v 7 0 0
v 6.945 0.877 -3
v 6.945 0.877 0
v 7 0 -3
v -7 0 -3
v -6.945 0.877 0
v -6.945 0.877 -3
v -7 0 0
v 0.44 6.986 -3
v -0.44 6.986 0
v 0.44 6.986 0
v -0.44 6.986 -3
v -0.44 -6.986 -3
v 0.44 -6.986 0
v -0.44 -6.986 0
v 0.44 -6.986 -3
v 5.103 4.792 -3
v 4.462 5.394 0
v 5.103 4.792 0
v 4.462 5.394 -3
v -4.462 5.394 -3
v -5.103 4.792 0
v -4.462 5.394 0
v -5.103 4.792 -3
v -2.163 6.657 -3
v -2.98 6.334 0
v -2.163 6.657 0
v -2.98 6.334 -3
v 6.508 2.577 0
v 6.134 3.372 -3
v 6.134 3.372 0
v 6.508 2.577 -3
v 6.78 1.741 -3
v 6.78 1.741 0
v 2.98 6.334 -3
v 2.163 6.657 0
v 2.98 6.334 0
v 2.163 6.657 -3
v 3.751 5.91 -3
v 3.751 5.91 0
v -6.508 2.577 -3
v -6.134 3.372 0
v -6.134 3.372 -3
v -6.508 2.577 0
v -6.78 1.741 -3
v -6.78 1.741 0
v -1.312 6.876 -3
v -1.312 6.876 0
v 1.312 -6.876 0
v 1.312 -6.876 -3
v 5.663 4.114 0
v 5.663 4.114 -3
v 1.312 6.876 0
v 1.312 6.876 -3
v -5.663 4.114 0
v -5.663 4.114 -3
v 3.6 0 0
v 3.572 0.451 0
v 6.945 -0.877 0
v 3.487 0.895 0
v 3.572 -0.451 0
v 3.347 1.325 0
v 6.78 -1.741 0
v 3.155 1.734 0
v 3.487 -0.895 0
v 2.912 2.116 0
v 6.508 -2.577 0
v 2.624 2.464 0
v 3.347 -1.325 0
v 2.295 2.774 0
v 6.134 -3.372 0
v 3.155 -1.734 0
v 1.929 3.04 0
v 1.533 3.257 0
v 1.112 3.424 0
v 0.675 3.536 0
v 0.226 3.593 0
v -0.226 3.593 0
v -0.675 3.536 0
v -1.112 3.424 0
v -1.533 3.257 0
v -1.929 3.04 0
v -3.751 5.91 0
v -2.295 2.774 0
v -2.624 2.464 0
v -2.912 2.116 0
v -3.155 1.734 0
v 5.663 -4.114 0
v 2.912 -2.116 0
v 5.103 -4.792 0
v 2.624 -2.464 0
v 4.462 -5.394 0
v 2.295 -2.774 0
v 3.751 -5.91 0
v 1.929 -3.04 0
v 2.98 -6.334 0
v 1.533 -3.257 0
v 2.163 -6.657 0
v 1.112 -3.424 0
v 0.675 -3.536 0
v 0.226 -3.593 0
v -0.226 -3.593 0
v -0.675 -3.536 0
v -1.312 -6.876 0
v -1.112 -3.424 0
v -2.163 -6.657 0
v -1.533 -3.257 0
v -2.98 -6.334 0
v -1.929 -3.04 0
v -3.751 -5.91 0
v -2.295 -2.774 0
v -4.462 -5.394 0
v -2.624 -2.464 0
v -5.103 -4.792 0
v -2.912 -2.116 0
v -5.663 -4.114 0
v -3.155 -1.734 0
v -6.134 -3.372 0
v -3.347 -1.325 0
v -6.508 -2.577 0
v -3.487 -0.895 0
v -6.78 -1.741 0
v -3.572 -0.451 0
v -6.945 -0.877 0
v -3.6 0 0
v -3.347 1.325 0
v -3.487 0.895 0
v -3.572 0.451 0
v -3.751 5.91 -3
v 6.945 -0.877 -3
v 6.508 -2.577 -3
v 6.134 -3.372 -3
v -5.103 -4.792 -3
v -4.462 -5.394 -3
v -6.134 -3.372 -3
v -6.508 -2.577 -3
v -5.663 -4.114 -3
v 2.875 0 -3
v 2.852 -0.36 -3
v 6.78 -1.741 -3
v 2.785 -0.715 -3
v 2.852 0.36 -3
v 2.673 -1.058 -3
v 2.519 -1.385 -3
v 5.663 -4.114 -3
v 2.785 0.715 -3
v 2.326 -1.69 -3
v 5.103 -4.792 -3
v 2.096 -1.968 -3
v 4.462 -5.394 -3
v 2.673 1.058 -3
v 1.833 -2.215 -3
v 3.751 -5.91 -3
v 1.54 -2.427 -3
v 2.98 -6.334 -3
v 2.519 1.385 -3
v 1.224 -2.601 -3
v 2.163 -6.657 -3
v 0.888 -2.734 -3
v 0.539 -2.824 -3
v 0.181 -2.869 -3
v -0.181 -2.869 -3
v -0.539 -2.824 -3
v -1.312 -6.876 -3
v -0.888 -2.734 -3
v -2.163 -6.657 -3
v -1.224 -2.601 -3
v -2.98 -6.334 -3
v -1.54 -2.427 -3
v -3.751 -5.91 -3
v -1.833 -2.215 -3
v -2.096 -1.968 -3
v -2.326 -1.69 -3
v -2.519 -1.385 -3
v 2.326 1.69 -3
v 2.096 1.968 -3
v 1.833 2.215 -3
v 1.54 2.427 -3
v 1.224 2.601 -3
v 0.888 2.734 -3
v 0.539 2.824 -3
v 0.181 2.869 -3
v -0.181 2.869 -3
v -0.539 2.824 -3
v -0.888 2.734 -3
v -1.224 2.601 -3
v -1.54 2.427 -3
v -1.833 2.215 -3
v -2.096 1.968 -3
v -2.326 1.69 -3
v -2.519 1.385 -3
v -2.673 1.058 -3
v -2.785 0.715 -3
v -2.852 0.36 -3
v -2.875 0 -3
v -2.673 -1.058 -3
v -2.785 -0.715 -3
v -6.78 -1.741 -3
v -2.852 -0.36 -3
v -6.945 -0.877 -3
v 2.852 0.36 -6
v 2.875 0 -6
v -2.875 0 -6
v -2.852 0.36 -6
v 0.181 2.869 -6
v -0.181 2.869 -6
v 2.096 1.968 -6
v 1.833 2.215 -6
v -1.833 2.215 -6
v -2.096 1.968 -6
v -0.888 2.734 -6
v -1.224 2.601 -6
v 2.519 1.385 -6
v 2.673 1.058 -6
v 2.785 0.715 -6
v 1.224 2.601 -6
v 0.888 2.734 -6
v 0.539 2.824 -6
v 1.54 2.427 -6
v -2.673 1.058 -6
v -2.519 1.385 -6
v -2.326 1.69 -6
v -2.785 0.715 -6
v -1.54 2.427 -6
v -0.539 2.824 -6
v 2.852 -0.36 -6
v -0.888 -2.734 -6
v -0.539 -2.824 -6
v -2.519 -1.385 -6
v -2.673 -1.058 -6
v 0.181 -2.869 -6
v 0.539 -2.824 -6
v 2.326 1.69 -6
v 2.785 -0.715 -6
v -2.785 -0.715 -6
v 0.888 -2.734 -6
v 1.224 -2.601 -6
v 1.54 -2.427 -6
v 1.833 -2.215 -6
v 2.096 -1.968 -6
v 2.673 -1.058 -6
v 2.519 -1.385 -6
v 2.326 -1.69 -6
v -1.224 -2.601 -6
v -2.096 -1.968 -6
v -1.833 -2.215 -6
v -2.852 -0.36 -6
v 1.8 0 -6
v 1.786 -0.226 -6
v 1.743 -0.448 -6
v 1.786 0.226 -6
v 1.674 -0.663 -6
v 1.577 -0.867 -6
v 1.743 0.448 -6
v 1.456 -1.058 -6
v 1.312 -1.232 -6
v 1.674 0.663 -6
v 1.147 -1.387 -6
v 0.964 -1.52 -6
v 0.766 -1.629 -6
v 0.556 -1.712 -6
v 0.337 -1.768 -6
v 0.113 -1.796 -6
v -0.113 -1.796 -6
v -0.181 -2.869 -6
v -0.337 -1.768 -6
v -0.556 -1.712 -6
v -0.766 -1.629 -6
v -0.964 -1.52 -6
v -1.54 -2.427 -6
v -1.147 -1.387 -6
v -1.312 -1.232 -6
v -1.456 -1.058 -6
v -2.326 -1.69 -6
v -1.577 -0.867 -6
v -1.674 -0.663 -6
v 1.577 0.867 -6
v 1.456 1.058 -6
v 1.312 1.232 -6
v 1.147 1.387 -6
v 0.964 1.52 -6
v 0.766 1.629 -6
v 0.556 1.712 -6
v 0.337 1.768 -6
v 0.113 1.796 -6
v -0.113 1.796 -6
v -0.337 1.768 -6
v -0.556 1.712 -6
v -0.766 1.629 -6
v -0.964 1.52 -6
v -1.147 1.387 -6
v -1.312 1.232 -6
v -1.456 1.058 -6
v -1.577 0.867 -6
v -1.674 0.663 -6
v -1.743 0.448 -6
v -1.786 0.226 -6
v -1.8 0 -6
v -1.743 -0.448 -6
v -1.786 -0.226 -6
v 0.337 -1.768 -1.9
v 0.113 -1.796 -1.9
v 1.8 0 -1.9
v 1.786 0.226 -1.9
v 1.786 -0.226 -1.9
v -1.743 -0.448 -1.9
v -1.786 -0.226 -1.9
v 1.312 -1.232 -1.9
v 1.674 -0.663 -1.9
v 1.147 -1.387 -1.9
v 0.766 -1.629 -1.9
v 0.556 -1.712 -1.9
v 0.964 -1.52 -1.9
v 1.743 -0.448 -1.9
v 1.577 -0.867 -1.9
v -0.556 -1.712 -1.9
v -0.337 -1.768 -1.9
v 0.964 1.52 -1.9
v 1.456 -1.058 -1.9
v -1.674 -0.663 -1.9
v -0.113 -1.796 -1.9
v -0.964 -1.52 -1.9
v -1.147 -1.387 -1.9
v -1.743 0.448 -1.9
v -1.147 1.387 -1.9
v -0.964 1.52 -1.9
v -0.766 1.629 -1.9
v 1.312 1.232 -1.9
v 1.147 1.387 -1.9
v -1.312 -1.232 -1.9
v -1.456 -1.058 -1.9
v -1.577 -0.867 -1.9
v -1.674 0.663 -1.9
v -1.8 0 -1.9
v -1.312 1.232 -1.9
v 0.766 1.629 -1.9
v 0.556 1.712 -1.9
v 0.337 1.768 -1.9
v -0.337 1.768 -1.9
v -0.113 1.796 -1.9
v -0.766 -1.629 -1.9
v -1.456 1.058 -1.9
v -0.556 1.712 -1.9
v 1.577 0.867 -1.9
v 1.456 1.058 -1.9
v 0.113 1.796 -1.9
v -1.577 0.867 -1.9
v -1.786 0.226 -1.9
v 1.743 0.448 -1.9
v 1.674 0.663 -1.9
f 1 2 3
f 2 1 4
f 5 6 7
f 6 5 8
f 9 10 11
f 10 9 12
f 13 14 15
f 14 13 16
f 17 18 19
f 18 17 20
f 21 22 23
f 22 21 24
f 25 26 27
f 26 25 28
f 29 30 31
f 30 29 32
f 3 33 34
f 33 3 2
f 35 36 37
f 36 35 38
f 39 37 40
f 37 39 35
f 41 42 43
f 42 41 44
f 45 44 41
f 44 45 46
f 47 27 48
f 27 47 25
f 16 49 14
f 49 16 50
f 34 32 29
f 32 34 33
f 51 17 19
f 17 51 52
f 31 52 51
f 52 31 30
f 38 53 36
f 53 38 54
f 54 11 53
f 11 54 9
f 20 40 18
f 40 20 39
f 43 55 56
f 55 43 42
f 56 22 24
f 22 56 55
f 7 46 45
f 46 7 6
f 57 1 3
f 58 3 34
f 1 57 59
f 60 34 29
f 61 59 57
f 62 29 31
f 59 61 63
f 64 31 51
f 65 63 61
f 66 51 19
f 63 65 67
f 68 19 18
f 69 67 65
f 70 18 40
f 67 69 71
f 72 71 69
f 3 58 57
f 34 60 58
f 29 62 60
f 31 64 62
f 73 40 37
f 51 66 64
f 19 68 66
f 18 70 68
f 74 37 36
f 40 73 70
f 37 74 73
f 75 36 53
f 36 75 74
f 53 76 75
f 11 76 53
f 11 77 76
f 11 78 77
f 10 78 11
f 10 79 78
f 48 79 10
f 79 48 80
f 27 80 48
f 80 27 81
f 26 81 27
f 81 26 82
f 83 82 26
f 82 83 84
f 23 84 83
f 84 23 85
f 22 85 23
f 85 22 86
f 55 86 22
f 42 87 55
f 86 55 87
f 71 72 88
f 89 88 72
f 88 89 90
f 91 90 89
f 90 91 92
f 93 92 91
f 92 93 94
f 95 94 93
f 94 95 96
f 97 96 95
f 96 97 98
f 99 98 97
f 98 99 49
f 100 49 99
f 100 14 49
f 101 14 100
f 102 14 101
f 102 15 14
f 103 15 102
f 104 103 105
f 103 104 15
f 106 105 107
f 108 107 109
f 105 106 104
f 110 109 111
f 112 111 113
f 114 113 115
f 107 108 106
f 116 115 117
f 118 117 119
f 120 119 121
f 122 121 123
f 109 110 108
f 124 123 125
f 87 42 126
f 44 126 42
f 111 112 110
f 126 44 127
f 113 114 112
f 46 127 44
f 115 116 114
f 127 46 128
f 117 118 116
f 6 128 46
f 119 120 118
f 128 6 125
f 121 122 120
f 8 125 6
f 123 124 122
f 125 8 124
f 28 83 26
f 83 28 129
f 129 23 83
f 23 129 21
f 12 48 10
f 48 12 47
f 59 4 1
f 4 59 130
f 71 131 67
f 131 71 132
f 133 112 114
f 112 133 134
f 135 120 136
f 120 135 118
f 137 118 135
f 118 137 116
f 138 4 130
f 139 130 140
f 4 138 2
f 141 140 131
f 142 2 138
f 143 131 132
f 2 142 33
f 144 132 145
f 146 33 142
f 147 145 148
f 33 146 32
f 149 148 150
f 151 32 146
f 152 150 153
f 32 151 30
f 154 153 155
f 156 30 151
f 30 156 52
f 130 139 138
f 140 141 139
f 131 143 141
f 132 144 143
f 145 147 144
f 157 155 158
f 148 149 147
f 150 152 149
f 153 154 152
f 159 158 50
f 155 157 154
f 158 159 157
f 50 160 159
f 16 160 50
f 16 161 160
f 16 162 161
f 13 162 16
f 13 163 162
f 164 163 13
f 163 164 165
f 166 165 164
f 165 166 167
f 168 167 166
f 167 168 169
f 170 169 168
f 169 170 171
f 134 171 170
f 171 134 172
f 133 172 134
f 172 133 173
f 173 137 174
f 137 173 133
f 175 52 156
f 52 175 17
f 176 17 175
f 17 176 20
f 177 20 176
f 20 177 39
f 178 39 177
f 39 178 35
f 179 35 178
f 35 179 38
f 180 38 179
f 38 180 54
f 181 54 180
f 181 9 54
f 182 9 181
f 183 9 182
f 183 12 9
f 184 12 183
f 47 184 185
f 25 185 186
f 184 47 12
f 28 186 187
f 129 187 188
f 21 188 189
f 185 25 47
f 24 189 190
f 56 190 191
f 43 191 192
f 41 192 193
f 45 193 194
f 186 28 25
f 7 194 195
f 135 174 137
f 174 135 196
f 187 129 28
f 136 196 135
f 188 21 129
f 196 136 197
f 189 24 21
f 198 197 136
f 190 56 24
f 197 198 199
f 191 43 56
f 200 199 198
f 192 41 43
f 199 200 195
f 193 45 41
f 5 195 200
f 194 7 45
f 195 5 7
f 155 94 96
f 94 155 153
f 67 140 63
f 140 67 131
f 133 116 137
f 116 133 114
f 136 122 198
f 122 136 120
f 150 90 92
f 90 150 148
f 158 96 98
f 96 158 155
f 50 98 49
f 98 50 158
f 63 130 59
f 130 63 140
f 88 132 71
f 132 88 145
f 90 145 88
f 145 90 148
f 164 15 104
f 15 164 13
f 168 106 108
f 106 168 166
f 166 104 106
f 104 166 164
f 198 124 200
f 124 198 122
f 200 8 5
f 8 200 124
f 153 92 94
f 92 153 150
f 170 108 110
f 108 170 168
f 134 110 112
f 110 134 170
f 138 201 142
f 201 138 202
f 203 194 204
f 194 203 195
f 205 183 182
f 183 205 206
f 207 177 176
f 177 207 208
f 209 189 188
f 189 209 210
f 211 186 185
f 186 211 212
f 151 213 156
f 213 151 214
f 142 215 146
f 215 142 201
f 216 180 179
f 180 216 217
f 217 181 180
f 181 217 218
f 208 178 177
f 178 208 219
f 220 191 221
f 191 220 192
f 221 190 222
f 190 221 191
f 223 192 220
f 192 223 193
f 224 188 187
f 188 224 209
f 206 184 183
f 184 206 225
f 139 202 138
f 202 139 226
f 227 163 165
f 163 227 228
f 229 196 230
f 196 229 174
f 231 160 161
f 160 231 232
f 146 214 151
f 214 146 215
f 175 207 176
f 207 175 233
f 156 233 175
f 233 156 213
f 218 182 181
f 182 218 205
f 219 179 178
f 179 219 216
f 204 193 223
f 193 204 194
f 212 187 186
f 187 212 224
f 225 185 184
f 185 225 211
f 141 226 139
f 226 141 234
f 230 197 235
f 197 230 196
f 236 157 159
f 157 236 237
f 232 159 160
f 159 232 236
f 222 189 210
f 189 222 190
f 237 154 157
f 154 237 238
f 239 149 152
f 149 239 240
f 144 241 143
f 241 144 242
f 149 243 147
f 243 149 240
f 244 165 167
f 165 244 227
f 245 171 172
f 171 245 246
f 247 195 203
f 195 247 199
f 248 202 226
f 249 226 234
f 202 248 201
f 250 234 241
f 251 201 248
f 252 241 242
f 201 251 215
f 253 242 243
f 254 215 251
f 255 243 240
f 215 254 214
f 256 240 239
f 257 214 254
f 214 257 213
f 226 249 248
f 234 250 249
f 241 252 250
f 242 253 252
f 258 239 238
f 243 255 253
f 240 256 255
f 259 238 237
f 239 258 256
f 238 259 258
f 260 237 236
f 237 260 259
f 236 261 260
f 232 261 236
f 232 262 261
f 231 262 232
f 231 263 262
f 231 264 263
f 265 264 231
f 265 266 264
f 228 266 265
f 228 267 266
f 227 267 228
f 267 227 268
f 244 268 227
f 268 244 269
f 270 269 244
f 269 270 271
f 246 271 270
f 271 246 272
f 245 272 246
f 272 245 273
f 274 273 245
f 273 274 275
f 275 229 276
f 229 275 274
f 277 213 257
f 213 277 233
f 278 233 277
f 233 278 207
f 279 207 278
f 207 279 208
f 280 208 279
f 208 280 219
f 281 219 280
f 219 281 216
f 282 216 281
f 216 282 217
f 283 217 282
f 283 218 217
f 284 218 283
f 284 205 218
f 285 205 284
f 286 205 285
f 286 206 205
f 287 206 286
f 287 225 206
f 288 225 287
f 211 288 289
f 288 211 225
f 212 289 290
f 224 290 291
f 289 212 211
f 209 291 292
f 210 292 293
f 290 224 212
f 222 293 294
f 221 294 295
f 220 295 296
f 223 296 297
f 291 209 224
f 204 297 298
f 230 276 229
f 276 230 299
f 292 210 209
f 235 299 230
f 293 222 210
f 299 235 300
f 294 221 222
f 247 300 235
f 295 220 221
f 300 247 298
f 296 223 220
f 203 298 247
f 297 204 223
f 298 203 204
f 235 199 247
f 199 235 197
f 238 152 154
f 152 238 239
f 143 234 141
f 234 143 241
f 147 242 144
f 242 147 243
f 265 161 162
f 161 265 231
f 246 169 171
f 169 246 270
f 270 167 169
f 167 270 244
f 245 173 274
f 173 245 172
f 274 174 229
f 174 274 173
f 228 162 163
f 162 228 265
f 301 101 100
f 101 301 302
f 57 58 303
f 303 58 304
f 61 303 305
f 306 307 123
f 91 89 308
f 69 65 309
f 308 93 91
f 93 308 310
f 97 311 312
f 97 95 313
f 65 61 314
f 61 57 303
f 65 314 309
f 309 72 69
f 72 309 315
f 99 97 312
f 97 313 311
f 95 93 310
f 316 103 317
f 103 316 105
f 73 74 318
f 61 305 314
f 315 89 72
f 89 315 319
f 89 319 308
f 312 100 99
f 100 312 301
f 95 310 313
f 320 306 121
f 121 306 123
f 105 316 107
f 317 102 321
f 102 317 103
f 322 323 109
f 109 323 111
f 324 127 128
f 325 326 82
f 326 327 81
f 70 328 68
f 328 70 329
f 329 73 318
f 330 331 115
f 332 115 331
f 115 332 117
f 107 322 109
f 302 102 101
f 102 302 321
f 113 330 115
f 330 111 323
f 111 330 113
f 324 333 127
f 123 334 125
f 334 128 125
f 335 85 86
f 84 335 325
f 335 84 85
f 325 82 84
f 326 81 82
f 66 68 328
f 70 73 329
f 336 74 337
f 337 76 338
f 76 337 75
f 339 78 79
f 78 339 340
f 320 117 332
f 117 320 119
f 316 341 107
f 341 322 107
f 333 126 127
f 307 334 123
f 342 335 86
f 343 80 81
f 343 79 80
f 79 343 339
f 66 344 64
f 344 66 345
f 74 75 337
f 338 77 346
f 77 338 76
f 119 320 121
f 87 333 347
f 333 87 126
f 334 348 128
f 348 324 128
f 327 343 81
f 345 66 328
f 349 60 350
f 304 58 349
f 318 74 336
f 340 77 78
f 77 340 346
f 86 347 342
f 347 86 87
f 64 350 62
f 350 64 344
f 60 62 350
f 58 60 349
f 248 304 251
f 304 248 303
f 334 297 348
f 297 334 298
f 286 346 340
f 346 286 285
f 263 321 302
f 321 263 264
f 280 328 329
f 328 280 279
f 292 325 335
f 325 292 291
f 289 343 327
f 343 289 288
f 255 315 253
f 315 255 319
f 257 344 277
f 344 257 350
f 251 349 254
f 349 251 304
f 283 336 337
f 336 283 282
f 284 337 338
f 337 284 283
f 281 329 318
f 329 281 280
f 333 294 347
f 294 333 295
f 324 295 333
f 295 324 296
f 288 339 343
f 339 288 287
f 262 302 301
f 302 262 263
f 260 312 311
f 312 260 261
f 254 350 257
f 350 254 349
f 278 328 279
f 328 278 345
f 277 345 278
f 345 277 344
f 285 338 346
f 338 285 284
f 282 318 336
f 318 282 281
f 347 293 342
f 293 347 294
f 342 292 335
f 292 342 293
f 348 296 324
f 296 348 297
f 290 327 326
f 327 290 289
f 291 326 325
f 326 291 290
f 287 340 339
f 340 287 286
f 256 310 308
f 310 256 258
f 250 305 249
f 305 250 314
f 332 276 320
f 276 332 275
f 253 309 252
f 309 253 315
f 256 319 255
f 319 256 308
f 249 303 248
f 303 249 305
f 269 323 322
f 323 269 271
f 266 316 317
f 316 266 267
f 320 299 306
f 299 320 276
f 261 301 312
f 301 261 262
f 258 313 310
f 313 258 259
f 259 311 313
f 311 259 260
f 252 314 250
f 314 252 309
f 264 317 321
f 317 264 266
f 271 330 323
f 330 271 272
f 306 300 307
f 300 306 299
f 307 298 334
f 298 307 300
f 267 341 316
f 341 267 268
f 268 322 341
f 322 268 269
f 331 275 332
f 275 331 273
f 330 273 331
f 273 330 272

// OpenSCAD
$fn = 50;

difference() {
	union() {
		translate(v = [0, 0, -3.0]) {
			cylinder(h = 3, r = 7.0);
		}
		#translate(v = [0, 0, -6.0]) {
			cylinder(h = 6, r = 2.875);
		}
	}
	union() {
		translate(v = [0, 0, 0]) {
			rotate(a = [0, 0, 0]) {
				difference() {
					union() {
						translate(v = [0, 0, -6.0]) {
							cylinder(h = 6, r = 1.5);
						}
						translate(v = [0, 0, -1.9]) {
							cylinder(h = 1.9, r1 = 1.8, r2 = 3.6);
						}
						translate(v = [0, 0, -6.0]) {
							cylinder(h = 6, r = 1.8);
						}
						translate(v = [0, 0, -6.0]) {
							cylinder(h = 6, r = 1.5);
						}
					}
					union();
				}
			}
		}
	}
}
